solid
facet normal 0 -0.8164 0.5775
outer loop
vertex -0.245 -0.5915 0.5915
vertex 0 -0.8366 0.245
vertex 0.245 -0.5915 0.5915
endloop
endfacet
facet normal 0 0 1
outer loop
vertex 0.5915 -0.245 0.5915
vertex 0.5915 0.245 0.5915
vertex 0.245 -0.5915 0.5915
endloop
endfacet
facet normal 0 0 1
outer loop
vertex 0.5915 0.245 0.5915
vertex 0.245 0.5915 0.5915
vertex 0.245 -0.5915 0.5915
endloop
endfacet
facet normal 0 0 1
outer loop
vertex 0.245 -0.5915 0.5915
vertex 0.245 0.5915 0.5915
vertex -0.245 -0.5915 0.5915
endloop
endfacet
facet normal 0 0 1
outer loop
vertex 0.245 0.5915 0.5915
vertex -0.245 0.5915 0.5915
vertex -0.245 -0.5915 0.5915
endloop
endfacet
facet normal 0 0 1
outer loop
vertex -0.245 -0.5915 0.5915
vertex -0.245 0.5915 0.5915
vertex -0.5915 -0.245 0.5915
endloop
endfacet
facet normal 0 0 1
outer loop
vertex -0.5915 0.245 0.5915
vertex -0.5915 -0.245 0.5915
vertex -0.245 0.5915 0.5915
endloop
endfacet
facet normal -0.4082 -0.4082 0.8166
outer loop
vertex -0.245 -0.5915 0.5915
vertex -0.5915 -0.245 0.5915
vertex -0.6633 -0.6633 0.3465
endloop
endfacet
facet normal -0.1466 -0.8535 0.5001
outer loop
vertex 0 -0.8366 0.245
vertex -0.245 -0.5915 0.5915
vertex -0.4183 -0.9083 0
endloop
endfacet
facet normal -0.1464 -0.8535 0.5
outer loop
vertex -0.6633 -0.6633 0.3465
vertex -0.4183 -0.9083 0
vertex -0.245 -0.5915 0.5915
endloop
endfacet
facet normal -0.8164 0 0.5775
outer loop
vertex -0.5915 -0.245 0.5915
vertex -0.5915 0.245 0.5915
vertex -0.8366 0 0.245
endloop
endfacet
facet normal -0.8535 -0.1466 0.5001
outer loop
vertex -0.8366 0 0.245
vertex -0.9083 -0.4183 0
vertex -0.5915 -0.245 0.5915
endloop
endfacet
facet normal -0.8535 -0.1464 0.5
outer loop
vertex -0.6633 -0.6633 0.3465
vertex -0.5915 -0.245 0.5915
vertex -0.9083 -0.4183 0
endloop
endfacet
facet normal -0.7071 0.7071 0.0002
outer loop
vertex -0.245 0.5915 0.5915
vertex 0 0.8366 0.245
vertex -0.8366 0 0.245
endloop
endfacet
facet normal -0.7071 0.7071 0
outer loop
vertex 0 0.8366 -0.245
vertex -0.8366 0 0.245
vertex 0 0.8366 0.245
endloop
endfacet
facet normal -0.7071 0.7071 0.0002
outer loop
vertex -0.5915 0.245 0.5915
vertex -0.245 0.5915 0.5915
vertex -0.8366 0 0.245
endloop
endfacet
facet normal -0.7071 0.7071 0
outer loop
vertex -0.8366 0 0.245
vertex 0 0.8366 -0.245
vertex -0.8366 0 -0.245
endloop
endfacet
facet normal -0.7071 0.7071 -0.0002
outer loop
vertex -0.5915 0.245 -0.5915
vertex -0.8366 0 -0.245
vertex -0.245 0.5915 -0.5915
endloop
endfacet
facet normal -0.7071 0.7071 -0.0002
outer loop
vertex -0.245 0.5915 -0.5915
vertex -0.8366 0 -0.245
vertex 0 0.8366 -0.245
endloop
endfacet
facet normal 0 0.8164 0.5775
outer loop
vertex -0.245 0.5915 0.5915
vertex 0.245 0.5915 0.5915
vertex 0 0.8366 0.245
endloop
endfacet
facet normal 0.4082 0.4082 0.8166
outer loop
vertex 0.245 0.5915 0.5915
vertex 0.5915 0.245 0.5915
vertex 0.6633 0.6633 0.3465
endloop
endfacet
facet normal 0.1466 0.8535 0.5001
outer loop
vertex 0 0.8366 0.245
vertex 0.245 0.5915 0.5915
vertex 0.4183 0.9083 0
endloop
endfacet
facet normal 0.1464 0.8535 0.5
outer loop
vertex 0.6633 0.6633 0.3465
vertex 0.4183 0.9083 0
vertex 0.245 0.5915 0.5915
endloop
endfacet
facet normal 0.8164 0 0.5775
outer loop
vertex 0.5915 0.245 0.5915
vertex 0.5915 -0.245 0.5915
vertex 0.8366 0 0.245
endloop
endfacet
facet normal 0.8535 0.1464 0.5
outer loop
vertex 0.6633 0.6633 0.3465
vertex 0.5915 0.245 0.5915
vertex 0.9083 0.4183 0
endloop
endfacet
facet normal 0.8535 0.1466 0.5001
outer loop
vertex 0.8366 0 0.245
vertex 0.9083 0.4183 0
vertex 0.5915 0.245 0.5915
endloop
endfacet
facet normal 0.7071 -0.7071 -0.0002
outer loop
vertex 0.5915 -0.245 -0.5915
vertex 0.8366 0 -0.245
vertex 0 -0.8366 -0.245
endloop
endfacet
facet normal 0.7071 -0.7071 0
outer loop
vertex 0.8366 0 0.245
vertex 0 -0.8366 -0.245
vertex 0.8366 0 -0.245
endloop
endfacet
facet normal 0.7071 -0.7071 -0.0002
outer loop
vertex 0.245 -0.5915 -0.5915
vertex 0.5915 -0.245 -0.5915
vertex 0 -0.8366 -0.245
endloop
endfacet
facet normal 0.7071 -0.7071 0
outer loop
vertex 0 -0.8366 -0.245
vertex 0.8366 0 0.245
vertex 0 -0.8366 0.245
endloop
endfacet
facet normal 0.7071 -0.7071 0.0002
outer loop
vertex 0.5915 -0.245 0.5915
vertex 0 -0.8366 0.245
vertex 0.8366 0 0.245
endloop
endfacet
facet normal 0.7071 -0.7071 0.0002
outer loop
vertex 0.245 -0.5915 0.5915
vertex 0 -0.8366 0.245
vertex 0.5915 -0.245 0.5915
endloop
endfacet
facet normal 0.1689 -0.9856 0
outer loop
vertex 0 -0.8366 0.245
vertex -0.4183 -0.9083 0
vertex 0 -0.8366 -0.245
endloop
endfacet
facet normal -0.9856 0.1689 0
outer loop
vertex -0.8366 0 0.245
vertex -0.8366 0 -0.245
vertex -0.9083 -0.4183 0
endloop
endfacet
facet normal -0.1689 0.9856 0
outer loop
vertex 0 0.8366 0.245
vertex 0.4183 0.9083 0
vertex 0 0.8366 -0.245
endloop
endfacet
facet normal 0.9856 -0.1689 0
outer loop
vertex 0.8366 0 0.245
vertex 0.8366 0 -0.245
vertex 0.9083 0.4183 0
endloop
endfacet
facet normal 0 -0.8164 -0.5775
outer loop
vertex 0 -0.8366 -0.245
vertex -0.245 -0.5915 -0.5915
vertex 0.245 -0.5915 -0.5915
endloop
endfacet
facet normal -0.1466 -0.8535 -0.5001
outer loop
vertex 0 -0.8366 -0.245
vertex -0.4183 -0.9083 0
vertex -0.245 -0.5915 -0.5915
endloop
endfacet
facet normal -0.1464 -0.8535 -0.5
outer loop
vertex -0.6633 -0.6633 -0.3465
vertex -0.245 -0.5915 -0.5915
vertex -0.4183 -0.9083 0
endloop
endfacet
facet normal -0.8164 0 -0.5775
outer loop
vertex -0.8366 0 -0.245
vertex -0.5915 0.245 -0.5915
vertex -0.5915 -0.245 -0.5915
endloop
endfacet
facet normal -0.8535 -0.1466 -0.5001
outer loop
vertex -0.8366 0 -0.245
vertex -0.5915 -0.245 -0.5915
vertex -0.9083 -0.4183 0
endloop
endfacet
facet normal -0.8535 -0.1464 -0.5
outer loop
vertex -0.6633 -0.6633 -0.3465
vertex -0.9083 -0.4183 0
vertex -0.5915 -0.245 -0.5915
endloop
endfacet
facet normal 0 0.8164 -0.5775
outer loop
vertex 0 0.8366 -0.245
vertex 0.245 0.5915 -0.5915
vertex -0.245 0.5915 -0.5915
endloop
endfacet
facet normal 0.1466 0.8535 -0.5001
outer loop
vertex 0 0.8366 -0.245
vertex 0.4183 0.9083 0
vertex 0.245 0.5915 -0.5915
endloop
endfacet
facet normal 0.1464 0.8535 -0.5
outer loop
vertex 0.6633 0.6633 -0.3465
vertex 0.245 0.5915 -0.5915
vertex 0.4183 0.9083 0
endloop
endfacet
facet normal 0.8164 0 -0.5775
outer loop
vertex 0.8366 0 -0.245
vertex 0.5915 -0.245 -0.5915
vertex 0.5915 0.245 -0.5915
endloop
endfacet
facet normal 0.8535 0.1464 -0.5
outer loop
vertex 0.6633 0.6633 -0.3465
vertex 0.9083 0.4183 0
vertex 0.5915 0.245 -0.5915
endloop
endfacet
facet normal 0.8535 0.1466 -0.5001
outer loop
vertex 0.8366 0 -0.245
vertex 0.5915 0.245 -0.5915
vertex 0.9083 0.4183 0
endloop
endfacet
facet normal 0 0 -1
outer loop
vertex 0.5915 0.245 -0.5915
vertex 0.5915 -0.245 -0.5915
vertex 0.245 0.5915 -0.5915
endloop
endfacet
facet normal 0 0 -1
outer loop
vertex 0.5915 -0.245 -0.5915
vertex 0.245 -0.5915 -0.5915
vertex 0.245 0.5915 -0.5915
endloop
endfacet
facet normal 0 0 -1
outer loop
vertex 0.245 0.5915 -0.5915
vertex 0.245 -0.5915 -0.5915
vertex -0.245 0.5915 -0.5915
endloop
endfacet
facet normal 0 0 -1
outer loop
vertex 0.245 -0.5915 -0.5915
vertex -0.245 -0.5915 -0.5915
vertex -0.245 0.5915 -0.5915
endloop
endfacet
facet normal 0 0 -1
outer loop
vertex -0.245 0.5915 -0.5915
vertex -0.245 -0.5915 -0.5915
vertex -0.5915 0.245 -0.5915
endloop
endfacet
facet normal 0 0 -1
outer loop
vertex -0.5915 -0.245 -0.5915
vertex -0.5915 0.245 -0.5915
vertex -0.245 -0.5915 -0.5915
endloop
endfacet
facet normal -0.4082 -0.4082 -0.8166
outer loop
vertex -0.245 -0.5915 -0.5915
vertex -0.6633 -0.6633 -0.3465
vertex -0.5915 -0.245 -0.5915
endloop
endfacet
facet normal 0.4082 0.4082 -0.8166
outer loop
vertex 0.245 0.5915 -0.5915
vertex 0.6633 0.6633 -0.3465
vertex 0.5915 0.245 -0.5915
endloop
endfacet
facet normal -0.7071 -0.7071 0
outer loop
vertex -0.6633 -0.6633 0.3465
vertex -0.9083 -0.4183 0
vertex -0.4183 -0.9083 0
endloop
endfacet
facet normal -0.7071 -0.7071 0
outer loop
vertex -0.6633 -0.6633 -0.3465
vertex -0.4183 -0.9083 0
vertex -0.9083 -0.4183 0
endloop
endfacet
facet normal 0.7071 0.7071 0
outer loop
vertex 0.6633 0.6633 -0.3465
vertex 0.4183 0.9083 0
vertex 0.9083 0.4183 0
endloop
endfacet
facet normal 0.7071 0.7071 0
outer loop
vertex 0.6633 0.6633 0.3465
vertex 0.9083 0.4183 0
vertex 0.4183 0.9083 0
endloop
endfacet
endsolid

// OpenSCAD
polyhedron( points = [[-0.245021112372595, -0.591533292562446, 0.591533292491828], [-0.591533292612077, -0.245021112276293, 0.591533292491828], [-0.591533292546073, 0.245021112472621, 0.591533292491828], [-0.24502111231948, 0.591533292621433, 0.591533292491828], [0.245021112429436, 0.591533292577427, 0.591533292491828], [0.591533292593802, 0.245021112366389, 0.591533292491828], [0.5915332925718, -0.245021112382525, 0.591533292491828], [0.245021112376321, -0.591533292562446, 0.591533292491828], [1.45651179045768e-11, -0.836554404997432, 0.245021112280791], [-0.836554405089182, 2.18992506606429e-10, 0.245021112387023], [8.96821903689783e-11, 0.836554404928182, 0.245021112280791], [0.836554405012085, -1.0689539282577e-10, 0.245021112387022], [-1.17706115177638e-10, -0.836554404886123, -0.245021112361895], [-0.836554405190337, 2.99183011582966e-10, -0.245021112255663], [2.13880473309674e-10, 0.836554404772868, -0.245021112361895], [0.836554405105164, -2.3109166275867e-10, -0.245021112255663], [-0.245021112616809, -0.591533292368841, -0.591533292435583], [-0.591533292856291, -0.245021112082688, -0.591533292391582], [-0.591533292465147, 0.245021112391695, -0.591533292670049], [-0.245021112238553, 0.591533292540502, -0.591533292648046], [0.24502111265416, 0.591533292277585, -0.591533292435583], [0.591533292818526, 0.245021112066547, -0.591533292391582], [0.591533292461437, -0.24502111236744, -0.591533292693272], [0.245021112257697, -0.591533292494431, -0.591533292688308], [-0.418277202655279, -0.908319426933902, -9.76787550254997e-12], [-0.663298314825143, -0.663298314539421, 0.346512180195766], [-0.908319427338458, -0.418277202246949, 5.24577862280279e-11], [-0.663298315026411, -0.663298314606819, -0.346512180026945], [0.418277202664819, 0.908319426827093, -3.58086884017219e-11], [0.663298314787278, 0.663298314516845, 0.346512180169727], [0.908319427241764, 0.418277202246369, 2.64217610230724e-11], [0.663298314977125, 0.66329831452201, -0.346512180052981]], faces = [[0, 8, 7], [0, 7, 6, 5, 4, 3, 2, 1], [0, 1, 25], [0, 25, 24, 8], [1, 2, 9], [1, 9, 26, 25], [2, 3, 10, 14, 19, 18, 13, 9], [3, 4, 10], [4, 5, 29], [4, 29, 28, 10], [5, 6, 11], [5, 11, 30, 29], [6, 7, 8, 12, 23, 22, 15, 11], [8, 24, 12], [9, 13, 26], [10, 28, 14], [11, 15, 30], [12, 16, 23], [12, 24, 27, 16], [13, 18, 17], [13, 17, 27, 26], [14, 20, 19], [14, 28, 31, 20], [15, 22, 21], [15, 21, 31, 30], [16, 17, 18, 19, 20, 21, 22, 23], [16, 27, 17], [20, 31, 21], [24, 25, 26, 27], [28, 29, 30, 31]]);
